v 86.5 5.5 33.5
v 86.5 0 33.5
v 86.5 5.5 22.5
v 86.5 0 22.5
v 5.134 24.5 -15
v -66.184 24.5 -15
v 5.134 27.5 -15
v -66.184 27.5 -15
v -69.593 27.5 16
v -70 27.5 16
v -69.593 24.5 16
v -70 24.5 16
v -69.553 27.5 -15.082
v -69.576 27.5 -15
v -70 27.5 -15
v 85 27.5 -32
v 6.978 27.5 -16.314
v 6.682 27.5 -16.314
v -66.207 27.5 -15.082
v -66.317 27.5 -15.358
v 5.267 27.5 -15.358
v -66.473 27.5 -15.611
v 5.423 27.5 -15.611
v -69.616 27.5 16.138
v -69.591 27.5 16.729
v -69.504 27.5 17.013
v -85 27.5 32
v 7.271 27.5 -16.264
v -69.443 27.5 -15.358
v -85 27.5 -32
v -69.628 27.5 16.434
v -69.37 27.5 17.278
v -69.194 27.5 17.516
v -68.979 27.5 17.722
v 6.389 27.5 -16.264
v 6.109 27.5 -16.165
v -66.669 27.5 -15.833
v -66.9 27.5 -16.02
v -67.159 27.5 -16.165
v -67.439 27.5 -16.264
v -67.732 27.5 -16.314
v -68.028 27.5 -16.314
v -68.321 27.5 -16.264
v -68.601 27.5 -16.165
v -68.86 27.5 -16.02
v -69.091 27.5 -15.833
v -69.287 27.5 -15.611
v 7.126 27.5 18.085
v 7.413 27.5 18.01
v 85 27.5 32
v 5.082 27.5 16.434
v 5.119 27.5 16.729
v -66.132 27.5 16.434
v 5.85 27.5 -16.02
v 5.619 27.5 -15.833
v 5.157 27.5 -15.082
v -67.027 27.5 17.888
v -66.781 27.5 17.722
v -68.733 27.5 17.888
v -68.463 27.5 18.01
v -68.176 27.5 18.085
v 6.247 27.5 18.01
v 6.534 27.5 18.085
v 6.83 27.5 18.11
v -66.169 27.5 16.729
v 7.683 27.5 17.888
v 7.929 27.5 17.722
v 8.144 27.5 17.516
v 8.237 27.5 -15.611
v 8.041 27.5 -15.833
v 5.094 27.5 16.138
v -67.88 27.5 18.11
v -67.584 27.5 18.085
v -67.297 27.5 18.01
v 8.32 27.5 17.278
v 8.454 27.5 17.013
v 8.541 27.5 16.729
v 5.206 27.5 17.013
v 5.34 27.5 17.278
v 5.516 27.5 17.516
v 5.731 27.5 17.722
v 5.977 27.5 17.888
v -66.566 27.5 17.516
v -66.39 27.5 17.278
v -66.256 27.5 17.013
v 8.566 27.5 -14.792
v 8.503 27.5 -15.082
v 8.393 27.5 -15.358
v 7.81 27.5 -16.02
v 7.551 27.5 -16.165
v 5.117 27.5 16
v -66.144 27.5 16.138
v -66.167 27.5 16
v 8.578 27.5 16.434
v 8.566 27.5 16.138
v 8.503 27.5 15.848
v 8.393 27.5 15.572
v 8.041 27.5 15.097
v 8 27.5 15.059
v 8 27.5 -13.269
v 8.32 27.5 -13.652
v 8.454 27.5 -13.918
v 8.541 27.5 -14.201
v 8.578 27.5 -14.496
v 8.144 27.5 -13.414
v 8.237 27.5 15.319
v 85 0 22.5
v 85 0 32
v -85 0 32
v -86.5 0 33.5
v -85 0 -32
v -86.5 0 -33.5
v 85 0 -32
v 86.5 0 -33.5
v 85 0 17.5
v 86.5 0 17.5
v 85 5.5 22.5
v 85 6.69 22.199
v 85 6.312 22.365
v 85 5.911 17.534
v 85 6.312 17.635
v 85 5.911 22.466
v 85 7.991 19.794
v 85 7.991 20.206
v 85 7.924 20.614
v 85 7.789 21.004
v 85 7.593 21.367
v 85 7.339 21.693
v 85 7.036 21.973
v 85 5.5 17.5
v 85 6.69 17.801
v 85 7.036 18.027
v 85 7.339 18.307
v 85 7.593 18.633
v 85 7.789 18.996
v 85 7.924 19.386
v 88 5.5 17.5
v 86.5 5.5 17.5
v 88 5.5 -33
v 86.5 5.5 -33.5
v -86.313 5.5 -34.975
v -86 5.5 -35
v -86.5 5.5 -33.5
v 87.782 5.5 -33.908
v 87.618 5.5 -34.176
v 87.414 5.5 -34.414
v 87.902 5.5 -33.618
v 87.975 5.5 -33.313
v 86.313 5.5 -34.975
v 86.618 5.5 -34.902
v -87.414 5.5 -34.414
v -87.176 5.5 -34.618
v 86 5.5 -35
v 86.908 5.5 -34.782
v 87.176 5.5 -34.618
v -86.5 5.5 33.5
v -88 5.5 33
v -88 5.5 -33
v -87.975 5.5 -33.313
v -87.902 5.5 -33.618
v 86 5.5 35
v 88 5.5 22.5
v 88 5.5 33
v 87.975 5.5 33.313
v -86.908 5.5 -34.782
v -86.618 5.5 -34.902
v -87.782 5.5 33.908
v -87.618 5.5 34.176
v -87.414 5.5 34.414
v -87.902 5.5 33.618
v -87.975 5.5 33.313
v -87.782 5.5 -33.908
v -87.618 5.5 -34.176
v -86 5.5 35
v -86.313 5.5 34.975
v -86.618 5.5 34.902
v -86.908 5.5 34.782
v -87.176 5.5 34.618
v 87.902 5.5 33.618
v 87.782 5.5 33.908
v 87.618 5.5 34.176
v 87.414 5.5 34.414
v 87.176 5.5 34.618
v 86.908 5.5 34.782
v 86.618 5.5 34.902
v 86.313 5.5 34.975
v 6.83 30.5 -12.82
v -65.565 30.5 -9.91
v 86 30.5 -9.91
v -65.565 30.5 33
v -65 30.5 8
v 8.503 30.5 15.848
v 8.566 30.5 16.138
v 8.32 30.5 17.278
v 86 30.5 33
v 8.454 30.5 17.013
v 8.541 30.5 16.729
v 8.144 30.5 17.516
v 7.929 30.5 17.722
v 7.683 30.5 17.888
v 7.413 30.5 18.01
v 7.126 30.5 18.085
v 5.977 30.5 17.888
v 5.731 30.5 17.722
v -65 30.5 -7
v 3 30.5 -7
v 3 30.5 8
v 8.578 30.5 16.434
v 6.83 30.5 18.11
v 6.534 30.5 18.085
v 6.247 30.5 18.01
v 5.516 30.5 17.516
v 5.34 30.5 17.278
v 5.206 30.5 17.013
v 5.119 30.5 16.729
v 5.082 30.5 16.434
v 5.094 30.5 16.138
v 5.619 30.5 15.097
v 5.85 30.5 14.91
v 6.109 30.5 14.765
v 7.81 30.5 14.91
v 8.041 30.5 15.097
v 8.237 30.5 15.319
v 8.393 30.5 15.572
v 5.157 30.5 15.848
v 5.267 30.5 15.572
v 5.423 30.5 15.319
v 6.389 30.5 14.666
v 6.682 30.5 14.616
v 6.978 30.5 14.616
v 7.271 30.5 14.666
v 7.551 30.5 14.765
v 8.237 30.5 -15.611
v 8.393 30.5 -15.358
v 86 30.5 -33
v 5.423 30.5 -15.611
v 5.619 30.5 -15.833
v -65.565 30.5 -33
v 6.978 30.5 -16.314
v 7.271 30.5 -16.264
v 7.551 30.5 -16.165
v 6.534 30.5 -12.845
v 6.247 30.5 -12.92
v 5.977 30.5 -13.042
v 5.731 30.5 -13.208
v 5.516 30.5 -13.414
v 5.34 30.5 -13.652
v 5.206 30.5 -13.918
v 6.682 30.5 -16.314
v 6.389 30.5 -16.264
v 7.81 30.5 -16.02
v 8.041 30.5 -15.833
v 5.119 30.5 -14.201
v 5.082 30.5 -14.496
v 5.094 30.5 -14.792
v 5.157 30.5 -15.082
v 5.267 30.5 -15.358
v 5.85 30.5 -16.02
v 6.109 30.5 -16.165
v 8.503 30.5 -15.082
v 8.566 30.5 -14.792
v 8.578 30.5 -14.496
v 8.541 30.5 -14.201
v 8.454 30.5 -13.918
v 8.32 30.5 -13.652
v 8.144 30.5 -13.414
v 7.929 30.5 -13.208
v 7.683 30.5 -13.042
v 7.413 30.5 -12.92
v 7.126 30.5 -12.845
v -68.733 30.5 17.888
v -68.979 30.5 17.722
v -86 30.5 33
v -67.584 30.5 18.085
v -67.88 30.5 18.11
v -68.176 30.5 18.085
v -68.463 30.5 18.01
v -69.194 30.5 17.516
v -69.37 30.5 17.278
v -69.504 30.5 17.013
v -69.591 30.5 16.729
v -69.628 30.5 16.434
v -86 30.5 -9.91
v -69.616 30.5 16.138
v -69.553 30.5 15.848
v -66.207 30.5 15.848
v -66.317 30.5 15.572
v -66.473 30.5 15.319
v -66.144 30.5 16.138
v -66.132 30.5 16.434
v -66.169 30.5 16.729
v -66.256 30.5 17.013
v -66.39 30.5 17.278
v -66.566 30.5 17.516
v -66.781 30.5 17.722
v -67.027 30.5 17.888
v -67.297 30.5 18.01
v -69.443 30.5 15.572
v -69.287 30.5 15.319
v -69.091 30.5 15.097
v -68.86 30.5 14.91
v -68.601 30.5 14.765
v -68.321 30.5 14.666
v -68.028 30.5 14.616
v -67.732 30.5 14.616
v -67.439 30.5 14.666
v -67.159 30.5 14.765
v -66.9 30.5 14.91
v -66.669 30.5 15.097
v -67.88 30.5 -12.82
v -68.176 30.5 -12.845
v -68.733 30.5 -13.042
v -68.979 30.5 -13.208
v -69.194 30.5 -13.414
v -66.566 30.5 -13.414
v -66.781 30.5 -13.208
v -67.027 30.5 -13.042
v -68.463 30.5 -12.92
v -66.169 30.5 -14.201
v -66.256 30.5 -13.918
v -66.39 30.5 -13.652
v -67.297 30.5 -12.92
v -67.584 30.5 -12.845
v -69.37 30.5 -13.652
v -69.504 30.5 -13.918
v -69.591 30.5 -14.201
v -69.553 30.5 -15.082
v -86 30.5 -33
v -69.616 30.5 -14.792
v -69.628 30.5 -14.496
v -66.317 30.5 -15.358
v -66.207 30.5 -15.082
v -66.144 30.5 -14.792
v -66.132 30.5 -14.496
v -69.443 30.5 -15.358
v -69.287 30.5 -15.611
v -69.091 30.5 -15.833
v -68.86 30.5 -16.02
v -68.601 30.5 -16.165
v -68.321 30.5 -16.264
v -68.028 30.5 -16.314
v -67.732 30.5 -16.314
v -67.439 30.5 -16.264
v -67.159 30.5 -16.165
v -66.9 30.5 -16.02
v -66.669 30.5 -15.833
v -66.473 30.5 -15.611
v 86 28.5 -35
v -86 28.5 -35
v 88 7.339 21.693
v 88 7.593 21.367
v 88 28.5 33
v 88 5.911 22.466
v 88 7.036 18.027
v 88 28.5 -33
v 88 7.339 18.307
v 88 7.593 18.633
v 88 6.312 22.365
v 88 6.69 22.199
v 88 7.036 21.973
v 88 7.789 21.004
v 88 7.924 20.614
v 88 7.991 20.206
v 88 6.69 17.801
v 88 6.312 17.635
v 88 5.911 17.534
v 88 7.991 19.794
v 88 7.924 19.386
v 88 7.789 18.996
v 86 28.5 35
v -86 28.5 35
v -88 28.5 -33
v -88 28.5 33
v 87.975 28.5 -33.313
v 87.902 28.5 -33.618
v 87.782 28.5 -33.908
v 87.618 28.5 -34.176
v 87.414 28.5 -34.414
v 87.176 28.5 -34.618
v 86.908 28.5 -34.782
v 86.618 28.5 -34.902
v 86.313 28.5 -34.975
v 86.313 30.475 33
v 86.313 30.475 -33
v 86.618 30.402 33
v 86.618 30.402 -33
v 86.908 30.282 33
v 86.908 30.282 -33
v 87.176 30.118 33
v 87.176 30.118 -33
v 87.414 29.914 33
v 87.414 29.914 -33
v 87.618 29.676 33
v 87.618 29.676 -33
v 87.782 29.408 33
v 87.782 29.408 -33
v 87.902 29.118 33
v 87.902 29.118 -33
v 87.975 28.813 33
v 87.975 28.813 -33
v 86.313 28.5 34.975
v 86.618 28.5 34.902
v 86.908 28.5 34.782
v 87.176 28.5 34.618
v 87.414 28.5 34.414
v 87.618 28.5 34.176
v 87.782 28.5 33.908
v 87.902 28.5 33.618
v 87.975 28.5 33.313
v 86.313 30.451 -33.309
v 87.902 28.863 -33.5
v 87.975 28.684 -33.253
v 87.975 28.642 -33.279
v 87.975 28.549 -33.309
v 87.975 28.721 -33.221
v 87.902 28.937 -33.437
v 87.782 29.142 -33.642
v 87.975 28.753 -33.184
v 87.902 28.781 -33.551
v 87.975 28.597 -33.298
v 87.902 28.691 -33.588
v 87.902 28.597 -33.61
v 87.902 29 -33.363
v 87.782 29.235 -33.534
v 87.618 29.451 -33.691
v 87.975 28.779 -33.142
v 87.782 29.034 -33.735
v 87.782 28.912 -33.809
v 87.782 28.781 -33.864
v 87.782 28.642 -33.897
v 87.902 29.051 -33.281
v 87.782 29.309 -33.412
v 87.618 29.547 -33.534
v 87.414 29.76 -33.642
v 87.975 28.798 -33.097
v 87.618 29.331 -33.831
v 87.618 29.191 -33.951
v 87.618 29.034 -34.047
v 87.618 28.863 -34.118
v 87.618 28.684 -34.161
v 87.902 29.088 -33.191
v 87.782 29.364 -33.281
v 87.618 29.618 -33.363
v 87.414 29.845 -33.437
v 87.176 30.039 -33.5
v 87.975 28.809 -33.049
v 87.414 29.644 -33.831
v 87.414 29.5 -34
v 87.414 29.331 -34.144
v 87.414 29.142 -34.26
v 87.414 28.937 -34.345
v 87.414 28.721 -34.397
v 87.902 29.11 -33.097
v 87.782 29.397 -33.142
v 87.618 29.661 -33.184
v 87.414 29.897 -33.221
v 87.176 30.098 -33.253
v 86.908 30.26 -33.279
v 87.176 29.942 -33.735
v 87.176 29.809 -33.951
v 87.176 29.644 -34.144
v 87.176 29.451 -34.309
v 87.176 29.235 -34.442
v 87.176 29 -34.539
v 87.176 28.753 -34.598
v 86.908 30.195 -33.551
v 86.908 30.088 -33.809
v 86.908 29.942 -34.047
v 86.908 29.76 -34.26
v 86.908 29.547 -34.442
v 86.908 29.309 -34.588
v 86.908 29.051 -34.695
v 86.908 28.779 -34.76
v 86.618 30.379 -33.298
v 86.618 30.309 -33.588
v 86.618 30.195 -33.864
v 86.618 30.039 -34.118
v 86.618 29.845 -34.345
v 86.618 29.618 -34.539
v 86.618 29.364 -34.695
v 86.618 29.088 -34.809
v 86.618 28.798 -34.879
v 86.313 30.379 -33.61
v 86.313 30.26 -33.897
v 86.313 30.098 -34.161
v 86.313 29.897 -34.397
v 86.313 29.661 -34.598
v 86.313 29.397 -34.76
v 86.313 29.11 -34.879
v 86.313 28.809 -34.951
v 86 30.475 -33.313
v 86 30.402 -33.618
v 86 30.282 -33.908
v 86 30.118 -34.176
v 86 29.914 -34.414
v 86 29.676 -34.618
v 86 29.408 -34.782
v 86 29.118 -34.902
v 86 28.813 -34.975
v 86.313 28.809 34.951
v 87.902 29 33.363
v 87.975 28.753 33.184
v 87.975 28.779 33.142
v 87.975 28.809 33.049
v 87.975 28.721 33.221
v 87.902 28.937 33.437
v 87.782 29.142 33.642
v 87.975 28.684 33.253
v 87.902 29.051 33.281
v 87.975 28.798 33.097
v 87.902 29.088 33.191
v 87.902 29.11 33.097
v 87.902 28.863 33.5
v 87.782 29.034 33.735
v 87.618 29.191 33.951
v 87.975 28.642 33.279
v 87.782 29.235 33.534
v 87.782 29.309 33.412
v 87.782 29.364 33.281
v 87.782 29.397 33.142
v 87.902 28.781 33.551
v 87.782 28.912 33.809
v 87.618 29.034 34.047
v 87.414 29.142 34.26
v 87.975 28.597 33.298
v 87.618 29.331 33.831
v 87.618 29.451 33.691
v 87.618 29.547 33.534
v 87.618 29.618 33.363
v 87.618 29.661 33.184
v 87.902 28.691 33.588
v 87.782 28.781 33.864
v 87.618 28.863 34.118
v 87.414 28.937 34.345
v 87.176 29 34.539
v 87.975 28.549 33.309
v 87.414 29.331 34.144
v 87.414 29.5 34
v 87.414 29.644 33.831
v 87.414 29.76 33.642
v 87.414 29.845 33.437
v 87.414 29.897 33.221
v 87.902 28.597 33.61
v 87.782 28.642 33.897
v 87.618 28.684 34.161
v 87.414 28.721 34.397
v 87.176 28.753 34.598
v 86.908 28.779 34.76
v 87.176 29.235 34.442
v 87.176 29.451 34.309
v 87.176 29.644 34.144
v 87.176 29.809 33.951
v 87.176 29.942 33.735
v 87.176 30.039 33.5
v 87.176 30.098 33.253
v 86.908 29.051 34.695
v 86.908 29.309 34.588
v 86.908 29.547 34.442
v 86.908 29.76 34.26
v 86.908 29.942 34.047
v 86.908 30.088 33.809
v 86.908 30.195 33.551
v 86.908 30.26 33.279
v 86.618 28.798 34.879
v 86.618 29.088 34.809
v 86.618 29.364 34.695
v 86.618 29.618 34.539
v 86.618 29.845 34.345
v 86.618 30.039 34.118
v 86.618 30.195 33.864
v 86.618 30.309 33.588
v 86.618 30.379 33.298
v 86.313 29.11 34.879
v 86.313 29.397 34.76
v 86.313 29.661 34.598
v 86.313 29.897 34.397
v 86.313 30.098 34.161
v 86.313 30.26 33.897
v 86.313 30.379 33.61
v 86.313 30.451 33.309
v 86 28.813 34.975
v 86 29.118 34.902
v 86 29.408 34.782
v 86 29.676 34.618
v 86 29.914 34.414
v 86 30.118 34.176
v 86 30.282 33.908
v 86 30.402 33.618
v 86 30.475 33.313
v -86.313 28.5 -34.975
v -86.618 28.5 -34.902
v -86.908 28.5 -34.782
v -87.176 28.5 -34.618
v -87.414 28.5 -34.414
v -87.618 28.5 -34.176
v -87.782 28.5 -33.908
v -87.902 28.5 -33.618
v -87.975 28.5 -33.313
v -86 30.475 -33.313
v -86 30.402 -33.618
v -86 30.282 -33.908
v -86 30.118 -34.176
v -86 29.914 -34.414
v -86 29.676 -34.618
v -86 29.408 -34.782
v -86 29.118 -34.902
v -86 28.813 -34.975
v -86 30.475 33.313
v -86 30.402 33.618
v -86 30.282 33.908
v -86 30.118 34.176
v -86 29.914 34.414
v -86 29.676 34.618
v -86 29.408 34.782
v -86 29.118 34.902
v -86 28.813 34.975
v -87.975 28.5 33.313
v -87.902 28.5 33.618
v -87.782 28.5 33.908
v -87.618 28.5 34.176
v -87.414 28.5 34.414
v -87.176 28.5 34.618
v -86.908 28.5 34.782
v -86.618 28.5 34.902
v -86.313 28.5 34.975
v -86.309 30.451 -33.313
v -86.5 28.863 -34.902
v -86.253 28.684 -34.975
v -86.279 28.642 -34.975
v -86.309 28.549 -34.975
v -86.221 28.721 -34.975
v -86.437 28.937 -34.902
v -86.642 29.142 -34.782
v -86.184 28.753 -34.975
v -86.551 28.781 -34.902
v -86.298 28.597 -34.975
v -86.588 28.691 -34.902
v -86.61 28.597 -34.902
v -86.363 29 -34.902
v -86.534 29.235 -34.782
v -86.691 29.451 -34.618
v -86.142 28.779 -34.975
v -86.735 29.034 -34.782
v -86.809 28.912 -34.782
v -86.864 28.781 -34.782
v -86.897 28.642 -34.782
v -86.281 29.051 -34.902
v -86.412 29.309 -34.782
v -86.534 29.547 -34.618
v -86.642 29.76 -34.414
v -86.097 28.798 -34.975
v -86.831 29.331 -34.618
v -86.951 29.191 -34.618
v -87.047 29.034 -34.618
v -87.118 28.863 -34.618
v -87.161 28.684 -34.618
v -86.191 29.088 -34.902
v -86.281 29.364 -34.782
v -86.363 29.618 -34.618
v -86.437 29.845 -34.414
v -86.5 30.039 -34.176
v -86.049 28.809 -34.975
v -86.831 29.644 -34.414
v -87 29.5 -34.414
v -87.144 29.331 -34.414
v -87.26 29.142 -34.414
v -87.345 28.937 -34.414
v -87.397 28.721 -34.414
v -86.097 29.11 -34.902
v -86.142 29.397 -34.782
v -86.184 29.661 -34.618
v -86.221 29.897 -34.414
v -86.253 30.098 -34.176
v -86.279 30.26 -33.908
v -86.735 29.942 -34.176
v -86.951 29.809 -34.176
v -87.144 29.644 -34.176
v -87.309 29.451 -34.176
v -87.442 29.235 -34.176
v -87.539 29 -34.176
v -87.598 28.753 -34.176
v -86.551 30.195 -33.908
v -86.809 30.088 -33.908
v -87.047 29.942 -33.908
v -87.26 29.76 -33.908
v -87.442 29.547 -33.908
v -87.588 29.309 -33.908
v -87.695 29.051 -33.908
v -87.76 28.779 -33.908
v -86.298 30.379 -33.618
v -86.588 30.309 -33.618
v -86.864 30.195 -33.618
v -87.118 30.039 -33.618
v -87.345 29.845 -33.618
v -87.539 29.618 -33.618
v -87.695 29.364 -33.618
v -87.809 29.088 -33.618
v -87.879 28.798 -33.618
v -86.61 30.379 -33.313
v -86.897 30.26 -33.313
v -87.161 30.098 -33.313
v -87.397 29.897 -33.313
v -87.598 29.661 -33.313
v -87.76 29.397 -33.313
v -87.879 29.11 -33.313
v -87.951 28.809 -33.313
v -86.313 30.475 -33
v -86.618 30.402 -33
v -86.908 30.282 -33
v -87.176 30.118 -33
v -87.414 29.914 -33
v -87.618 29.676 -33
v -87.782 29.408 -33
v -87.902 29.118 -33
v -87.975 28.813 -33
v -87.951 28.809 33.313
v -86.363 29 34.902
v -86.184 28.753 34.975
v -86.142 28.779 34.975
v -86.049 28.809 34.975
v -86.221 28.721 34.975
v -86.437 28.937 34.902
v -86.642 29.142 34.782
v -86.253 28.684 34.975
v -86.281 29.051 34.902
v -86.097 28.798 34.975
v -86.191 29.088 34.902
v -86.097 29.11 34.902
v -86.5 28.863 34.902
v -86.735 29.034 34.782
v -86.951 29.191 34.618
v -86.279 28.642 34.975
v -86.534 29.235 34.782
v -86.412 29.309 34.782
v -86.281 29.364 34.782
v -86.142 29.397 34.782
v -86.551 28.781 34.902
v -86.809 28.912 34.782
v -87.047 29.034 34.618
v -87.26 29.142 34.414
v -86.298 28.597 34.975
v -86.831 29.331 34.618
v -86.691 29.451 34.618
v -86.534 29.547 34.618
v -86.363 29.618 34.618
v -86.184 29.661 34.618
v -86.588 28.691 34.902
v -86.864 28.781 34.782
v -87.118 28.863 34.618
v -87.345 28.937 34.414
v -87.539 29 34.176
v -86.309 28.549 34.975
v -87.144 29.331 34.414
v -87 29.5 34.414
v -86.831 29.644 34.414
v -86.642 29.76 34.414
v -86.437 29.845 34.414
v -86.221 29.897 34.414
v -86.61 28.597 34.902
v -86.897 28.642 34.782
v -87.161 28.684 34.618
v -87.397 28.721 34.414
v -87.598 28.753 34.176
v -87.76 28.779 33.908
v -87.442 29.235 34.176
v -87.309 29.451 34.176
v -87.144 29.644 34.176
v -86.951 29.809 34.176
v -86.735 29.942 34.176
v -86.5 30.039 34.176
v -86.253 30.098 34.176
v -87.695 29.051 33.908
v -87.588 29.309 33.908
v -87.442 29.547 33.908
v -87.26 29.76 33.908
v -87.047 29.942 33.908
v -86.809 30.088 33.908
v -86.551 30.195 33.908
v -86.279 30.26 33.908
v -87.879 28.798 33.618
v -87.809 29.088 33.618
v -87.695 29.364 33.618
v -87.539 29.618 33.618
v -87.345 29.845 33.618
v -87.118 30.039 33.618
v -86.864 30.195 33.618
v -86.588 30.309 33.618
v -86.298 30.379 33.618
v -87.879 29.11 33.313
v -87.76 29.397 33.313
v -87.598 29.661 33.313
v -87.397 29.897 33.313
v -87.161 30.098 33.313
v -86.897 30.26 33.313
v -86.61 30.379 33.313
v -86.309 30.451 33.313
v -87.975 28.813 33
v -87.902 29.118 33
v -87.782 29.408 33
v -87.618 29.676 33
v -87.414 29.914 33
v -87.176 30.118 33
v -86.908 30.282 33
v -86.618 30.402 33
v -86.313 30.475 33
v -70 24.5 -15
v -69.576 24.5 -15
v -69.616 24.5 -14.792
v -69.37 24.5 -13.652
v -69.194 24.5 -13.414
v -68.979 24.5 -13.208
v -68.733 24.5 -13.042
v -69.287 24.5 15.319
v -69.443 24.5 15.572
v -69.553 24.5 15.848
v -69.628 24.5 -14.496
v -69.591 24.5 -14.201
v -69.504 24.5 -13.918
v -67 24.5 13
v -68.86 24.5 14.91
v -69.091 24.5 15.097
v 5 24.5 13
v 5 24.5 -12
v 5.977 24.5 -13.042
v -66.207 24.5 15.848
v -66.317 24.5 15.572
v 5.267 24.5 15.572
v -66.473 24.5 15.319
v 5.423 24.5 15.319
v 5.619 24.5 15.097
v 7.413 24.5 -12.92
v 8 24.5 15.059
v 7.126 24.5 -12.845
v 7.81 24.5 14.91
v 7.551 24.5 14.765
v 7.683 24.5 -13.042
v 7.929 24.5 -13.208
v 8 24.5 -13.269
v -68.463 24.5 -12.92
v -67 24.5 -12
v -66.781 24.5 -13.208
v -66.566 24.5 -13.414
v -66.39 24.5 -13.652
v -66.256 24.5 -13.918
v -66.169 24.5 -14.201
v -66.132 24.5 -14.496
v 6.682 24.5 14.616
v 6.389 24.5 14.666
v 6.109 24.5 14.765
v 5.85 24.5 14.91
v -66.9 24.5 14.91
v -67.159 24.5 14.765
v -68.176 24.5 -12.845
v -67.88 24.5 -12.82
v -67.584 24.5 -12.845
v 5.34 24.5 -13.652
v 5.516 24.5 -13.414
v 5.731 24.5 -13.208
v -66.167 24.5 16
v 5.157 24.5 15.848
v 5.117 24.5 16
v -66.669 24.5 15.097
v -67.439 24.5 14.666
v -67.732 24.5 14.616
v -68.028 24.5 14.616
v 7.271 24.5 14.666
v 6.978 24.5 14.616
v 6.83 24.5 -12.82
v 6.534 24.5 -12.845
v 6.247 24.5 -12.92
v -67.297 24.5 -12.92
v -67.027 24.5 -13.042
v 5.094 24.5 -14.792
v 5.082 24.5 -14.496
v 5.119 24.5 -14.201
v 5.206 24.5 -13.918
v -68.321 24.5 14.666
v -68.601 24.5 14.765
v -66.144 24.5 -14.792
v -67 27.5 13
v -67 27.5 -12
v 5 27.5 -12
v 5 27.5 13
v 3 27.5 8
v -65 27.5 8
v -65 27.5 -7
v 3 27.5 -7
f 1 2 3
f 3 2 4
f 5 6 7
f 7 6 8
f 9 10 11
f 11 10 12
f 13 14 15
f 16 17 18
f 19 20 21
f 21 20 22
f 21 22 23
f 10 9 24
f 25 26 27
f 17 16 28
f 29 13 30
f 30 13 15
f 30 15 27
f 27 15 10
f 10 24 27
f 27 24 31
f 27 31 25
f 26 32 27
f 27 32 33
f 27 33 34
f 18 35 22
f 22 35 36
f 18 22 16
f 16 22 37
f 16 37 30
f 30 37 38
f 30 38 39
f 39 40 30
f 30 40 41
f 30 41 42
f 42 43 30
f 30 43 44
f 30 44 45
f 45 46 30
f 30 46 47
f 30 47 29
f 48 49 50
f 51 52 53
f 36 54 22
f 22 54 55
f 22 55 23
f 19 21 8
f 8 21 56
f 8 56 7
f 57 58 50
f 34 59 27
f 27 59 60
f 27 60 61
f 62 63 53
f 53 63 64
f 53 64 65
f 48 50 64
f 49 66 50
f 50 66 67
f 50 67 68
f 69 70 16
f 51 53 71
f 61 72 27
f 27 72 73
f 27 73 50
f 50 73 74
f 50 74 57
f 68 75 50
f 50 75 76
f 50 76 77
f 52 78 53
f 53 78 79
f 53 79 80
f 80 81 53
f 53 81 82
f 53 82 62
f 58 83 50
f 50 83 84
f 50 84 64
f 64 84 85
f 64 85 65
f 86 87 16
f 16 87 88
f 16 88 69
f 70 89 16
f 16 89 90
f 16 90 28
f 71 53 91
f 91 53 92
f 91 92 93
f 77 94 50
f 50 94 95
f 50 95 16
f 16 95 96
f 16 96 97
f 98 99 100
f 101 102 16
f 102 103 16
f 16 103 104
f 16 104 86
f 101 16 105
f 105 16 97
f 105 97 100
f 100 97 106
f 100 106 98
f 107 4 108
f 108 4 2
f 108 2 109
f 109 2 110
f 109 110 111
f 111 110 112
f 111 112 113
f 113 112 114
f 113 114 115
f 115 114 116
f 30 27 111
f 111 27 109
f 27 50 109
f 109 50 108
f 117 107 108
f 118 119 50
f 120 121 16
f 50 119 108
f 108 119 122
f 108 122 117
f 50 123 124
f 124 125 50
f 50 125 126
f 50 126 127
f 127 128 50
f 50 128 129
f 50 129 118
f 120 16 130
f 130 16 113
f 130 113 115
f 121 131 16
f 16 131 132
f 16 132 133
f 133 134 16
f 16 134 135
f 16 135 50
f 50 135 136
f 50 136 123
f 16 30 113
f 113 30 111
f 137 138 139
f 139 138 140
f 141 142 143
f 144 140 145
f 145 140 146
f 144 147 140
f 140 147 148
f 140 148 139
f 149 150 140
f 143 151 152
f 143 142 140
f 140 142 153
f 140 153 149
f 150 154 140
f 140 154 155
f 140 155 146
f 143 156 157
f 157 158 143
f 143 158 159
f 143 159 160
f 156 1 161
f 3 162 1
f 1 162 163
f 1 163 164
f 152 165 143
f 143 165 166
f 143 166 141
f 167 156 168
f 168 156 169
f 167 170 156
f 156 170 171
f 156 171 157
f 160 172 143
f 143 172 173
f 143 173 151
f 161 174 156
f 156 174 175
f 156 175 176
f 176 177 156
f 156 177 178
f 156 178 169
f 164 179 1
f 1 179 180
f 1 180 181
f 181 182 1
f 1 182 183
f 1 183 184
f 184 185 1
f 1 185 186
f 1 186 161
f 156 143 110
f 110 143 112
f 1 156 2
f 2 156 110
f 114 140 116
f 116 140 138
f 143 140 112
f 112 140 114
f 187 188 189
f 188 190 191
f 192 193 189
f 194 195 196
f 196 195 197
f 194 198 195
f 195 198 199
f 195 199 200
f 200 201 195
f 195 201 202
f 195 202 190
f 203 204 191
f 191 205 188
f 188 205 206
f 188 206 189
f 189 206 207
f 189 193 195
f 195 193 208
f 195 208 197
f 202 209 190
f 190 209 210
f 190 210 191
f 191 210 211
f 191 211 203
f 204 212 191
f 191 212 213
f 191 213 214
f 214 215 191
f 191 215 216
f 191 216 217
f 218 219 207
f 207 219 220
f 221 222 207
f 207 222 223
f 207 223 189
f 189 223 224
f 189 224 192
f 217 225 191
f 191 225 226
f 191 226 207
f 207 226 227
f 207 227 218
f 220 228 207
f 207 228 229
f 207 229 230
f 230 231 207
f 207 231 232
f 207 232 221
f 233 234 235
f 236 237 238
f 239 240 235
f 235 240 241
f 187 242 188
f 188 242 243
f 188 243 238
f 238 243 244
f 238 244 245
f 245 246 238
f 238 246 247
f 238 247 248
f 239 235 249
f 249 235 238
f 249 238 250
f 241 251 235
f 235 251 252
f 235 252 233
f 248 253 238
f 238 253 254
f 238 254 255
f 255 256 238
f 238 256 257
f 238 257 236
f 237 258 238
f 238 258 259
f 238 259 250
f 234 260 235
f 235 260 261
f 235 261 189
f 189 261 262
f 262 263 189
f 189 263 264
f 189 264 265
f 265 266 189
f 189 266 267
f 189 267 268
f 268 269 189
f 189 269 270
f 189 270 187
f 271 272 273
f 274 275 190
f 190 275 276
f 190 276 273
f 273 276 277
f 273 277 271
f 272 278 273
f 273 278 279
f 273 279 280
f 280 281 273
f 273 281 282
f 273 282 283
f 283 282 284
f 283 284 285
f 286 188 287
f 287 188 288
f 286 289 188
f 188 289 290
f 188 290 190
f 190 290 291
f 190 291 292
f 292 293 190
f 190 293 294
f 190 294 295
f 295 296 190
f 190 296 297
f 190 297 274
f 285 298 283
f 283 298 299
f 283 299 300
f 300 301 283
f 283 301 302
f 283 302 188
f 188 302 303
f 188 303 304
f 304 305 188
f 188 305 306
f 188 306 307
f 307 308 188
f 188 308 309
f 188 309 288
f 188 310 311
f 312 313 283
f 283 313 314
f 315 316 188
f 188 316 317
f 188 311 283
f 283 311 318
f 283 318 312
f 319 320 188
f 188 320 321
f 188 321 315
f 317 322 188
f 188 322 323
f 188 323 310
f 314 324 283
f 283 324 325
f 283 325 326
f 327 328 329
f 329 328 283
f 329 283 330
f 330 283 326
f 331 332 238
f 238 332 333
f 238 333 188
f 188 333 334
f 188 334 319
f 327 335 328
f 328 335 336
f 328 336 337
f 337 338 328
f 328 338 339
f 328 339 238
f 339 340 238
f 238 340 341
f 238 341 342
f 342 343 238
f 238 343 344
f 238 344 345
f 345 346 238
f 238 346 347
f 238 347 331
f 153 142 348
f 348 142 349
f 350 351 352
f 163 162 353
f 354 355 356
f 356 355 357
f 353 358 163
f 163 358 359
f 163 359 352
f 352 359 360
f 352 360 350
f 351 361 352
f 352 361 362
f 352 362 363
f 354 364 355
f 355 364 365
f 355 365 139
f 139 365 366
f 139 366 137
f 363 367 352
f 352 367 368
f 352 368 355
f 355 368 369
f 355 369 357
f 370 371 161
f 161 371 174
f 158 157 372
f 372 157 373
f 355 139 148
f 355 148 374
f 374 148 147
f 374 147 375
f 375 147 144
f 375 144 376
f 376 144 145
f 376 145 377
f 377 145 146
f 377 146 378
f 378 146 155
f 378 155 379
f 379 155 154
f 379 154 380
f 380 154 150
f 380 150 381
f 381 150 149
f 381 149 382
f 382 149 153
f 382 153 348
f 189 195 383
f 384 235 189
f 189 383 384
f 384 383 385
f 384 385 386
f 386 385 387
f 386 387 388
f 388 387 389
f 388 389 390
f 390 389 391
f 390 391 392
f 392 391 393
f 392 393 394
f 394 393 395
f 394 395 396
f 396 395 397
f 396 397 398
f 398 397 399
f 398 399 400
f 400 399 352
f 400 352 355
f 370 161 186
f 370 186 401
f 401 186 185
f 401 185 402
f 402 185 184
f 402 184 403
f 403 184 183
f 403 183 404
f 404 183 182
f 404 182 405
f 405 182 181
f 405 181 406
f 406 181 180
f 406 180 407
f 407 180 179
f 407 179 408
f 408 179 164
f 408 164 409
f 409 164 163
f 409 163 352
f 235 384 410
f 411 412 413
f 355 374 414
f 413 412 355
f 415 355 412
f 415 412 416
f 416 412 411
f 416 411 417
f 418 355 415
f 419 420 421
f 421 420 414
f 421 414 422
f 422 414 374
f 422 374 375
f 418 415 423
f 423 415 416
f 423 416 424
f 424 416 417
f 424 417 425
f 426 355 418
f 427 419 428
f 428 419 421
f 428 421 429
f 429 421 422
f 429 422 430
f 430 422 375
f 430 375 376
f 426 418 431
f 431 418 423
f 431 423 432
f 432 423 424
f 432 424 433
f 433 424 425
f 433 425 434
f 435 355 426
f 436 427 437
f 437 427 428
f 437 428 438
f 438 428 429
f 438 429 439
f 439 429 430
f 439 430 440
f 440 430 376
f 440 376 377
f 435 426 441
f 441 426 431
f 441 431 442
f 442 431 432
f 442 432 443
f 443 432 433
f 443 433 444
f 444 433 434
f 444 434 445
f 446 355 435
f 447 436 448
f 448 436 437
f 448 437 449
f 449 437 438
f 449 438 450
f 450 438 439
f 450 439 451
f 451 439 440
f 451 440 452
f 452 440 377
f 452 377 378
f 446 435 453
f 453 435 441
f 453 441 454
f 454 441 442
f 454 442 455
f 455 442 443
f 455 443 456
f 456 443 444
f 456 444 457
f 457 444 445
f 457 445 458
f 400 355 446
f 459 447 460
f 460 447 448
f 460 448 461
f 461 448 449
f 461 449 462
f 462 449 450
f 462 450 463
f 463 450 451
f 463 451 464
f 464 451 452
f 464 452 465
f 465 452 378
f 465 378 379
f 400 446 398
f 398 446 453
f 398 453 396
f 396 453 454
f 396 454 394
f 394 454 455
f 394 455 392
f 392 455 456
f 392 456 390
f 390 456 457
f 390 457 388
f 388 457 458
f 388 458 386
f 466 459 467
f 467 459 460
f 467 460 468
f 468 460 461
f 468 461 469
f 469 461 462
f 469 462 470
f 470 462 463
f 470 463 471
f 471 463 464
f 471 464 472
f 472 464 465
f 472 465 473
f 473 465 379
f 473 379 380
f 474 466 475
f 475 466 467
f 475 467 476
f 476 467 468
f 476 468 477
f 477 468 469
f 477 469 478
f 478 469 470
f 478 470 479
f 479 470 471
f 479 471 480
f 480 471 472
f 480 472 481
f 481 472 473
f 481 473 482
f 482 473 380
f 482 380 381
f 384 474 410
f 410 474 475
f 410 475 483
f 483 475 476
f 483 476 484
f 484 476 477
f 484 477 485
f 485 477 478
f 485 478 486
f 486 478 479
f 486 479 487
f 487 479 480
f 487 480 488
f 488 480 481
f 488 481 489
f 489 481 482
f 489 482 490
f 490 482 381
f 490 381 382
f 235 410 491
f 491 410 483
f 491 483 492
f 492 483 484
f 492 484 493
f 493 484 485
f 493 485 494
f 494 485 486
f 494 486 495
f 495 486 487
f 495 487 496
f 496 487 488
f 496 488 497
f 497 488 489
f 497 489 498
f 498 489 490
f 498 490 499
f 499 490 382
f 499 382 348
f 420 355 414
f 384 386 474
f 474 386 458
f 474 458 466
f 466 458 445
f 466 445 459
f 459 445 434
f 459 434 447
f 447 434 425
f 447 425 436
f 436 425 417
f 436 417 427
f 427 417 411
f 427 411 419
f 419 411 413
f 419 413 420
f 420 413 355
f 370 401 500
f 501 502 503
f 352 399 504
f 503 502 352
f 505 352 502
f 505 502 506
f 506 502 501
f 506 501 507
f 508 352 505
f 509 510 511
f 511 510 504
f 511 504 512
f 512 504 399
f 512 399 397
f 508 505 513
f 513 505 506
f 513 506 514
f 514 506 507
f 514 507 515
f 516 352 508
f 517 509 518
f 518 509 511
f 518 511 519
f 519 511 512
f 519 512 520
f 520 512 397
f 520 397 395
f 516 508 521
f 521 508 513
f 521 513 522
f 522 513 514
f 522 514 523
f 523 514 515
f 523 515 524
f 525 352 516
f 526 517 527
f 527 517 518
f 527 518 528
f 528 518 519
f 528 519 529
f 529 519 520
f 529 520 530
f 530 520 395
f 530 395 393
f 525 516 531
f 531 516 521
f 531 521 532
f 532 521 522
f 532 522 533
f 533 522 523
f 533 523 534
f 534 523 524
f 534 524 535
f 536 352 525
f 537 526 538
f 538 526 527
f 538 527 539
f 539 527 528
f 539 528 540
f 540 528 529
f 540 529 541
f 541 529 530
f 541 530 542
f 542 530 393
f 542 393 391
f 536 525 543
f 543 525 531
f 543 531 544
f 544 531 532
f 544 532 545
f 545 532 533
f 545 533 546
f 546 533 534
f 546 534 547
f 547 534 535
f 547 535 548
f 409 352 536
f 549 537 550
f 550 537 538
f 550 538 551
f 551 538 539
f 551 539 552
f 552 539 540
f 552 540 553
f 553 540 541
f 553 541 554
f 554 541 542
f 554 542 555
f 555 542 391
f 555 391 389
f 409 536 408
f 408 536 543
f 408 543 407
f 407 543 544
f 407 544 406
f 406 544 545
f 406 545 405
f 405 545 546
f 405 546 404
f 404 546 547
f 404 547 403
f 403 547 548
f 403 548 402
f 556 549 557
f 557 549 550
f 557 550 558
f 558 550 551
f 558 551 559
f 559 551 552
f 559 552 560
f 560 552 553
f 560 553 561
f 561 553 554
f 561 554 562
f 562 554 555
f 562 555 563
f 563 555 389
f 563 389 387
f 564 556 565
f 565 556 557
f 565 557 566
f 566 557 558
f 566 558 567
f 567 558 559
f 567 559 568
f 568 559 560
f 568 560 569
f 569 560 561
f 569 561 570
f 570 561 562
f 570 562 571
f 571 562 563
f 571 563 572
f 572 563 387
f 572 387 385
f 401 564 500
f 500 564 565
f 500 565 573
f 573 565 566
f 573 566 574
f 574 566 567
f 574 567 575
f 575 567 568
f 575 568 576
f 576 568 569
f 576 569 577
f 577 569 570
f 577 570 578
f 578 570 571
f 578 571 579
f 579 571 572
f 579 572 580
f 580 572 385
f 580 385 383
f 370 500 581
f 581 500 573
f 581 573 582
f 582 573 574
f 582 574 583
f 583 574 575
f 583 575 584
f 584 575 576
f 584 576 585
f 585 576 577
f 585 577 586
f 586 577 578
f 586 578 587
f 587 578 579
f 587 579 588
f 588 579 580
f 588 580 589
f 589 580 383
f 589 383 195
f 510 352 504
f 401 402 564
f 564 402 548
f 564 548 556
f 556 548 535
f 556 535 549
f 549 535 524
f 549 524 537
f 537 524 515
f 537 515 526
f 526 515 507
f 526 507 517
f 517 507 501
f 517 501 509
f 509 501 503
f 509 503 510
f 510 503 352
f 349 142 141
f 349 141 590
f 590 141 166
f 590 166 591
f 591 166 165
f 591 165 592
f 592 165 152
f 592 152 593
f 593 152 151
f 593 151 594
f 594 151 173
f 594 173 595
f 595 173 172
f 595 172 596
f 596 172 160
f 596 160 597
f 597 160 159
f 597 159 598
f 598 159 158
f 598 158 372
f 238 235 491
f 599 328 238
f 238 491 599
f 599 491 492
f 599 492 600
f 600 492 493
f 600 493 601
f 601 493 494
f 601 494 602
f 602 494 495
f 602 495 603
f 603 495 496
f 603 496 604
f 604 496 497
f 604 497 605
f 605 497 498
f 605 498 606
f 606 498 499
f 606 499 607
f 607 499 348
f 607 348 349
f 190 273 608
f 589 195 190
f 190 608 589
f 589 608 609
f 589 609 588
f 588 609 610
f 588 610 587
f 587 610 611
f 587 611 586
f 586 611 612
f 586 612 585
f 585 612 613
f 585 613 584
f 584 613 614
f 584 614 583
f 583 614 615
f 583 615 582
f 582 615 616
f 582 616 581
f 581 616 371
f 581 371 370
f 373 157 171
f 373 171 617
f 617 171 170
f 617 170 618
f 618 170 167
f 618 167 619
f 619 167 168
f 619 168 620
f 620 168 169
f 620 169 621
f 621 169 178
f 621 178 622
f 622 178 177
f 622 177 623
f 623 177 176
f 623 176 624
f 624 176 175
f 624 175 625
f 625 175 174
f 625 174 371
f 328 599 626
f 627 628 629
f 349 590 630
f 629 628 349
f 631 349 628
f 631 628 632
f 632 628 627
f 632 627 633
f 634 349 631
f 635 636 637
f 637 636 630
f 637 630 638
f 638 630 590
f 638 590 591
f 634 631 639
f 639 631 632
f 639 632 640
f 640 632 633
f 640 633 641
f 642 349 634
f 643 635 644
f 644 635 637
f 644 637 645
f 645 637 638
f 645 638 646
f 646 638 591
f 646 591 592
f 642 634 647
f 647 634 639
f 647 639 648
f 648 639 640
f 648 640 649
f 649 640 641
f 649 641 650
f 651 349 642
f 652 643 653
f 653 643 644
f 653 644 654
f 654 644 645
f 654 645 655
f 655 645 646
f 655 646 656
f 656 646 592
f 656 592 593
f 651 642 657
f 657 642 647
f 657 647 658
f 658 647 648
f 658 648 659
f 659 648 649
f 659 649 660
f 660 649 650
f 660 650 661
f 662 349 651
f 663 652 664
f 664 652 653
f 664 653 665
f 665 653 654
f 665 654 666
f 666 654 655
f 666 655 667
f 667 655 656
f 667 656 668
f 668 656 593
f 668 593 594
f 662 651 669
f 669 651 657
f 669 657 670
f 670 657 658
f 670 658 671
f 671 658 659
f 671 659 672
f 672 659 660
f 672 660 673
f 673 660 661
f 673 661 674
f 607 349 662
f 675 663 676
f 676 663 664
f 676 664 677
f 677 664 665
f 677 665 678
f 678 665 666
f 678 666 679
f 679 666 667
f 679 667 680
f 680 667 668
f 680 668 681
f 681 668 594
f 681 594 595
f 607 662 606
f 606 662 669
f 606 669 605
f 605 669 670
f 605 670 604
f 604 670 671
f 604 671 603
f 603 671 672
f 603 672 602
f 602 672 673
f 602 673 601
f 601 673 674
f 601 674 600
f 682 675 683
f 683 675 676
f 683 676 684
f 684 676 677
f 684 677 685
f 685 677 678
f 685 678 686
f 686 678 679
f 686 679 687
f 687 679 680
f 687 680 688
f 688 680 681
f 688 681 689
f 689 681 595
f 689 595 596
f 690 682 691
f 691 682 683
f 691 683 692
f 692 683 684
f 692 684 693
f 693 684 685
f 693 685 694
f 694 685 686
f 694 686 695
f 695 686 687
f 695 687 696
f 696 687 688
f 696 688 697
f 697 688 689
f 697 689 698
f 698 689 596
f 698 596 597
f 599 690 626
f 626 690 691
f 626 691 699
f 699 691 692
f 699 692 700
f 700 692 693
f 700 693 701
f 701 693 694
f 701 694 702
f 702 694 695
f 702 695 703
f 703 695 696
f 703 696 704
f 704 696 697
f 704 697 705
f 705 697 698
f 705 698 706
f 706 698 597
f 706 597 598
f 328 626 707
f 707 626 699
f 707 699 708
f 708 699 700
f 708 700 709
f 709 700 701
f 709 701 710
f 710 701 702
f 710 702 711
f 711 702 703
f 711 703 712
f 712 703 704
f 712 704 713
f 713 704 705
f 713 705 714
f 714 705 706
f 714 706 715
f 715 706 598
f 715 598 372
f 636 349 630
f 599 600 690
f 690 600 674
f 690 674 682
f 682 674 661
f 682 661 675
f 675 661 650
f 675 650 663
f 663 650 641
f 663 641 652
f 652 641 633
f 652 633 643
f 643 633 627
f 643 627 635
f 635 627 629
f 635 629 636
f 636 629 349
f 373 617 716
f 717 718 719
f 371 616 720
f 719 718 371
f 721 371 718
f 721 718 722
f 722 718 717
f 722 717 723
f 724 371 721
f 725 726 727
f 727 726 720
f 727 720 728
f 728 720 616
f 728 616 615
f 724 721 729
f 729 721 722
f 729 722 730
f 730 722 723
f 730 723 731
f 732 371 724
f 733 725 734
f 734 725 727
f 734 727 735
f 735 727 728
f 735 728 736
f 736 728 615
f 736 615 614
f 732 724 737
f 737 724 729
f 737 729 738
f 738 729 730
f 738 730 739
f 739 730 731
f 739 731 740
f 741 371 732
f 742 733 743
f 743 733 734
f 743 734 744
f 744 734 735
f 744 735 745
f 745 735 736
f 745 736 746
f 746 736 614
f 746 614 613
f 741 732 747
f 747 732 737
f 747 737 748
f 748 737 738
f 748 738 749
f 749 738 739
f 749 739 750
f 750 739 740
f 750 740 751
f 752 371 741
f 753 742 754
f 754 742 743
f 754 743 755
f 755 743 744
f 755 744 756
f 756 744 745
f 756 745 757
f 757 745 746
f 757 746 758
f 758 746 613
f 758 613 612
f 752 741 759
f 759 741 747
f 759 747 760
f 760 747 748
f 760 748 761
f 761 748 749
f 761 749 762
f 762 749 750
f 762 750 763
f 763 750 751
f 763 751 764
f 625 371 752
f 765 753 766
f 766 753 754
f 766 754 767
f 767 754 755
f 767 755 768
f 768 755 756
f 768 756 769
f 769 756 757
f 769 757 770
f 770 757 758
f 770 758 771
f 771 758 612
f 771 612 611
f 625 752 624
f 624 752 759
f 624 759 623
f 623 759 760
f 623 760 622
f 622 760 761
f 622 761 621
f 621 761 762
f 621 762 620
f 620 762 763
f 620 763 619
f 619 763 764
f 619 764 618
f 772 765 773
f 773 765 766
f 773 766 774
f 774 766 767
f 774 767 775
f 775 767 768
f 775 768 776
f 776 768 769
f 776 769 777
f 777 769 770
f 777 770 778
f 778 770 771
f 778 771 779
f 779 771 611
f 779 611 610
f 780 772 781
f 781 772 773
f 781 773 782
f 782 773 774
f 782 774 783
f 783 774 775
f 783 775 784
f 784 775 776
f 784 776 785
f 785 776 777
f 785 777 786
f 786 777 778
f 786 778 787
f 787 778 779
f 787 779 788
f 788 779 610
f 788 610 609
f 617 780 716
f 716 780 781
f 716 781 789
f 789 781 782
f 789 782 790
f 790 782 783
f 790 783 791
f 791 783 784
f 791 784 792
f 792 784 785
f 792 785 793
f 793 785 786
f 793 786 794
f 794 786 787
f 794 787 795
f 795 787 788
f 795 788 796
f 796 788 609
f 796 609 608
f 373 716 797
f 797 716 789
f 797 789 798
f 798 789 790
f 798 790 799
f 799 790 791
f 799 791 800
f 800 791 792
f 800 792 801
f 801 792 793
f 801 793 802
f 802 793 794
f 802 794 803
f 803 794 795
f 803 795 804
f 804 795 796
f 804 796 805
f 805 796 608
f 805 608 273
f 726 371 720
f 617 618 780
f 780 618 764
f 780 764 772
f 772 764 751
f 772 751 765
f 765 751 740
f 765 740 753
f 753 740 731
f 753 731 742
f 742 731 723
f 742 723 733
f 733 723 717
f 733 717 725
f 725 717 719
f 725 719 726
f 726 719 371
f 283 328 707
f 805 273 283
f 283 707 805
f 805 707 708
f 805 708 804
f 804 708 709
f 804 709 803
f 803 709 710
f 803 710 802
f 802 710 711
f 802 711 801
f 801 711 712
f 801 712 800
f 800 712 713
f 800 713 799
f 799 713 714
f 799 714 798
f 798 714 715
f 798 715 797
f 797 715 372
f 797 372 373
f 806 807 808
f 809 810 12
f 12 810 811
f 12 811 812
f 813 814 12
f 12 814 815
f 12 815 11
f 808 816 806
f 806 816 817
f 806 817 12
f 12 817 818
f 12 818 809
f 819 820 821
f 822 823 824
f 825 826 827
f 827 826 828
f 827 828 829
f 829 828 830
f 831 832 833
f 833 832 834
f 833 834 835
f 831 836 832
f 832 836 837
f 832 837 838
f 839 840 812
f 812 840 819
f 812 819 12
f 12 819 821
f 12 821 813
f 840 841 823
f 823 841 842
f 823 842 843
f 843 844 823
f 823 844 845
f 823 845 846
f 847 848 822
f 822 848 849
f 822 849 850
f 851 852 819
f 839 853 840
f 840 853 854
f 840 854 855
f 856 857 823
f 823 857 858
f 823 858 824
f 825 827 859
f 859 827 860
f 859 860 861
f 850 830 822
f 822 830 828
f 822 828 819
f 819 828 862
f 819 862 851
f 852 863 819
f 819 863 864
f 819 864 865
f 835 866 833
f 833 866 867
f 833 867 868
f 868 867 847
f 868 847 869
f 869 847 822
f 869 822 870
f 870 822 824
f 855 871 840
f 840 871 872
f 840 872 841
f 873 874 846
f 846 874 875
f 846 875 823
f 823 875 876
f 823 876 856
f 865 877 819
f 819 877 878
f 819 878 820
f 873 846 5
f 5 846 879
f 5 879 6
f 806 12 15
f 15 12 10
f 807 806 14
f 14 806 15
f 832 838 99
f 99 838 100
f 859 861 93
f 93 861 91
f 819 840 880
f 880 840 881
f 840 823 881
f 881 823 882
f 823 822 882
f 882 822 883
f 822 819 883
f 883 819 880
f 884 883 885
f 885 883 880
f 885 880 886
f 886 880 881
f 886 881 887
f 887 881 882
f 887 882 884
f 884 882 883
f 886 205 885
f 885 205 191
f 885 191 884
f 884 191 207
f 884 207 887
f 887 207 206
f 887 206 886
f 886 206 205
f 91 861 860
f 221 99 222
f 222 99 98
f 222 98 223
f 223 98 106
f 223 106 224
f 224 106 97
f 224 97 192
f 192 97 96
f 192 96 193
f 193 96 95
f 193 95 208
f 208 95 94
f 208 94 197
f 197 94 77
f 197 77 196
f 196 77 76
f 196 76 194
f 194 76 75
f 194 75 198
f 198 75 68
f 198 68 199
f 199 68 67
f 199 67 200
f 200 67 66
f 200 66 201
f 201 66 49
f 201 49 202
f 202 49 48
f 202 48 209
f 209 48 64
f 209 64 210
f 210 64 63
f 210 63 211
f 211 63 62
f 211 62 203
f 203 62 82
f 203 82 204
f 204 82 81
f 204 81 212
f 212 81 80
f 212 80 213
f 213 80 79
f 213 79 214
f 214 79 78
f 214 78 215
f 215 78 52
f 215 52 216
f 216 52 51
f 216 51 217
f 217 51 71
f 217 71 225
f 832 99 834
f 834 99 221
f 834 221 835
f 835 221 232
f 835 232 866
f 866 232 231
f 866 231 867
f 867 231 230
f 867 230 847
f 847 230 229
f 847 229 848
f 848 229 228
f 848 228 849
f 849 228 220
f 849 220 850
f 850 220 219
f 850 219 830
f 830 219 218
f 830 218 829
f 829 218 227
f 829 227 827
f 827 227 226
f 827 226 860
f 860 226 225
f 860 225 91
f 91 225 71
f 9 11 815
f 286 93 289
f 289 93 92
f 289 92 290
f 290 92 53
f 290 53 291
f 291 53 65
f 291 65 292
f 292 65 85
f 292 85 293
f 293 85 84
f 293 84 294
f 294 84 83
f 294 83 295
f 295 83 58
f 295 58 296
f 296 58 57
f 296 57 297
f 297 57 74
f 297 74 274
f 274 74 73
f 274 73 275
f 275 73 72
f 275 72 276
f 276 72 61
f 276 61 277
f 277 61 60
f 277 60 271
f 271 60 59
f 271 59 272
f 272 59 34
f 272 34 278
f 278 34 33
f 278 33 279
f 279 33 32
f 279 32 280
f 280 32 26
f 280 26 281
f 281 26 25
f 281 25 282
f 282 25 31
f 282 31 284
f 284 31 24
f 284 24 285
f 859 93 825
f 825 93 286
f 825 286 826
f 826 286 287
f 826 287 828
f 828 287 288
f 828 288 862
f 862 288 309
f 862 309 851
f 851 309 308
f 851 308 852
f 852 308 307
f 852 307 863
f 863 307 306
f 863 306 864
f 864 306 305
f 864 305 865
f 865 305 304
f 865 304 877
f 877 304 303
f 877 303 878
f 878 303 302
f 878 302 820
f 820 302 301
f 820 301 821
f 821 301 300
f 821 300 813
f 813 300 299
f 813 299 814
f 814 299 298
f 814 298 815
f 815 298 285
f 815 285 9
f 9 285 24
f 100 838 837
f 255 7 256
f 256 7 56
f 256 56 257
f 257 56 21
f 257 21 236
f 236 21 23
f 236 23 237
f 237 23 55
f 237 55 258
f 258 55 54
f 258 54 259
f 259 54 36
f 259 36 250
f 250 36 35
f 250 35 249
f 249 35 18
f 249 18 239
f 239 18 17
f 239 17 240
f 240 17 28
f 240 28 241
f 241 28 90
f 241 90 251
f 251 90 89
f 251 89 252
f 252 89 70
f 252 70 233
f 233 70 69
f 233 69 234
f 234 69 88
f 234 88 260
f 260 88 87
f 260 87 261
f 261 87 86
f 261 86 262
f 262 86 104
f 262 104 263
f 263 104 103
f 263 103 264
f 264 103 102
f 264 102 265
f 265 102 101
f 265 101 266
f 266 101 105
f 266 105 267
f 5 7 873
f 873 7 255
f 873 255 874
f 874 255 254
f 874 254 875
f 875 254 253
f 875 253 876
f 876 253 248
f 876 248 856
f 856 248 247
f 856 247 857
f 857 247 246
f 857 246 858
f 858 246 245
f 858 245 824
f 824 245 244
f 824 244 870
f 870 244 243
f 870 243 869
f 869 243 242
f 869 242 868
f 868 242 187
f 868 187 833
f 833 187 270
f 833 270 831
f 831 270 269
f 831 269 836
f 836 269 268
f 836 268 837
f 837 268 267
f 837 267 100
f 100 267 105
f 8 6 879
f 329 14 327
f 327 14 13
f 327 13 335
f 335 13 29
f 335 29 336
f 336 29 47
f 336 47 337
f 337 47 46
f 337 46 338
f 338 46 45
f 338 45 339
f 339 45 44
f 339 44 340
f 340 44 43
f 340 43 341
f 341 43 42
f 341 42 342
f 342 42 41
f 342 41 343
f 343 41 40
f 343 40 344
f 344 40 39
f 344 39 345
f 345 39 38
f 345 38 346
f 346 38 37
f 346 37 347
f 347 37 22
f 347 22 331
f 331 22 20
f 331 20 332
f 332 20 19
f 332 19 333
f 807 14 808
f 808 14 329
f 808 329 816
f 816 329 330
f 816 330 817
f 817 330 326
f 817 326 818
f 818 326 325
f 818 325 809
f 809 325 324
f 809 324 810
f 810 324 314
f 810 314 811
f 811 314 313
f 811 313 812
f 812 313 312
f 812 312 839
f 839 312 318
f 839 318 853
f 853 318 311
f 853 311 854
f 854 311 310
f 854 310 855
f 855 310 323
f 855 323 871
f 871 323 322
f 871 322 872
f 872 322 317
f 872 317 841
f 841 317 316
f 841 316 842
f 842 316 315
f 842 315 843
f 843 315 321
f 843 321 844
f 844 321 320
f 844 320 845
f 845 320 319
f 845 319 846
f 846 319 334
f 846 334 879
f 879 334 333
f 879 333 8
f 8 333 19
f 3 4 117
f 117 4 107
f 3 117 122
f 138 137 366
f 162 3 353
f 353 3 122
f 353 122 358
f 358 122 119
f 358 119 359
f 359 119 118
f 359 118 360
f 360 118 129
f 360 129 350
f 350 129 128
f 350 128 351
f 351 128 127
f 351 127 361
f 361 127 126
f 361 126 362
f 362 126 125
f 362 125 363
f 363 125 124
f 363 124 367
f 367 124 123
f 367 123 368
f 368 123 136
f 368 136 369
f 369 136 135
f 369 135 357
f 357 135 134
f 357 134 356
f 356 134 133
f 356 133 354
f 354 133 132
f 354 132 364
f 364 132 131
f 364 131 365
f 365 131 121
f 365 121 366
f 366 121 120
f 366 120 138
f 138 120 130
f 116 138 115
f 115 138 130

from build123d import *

# Parameters (mm, degrees)
SKETCH1_W           = 176
SKETCH1_H           = 70
BOSS_EXTRUDE1_DEPTH = 30.5
SKETCH2_W           = 170
SKETCH2_H           = 64
CUT_EXTRUDE1_DEPTH  = 27.5
SKETCH3_W           = 176
SKETCH3_H           = 70
SKETCH3_W_2         = 173
SKETCH3_H_2         = 67
CUT_EXTRUDE2_DEPTH  = 5.5
FILLET1_R           = 2
SKETCH4_W           = 78
SKETCH4_H           = 31
SKETCH4_W_2         = 72
SKETCH4_H_2         = 25
BOSS_EXTRUDE2_DEPTH = 3
CUT_EXTRUDE3_REACH  = 5
SKETCH5_W           = 68
SKETCH5_H           = 15
CUT_EXTRUDE4_REACH  = 32.5
SKETCH6_R           = 1.75
CUT_EXTRUDE6_REACH  = 178


with BuildPart() as part:
    # Sketch1 → Boss-Extrude1 (new body)
    with BuildSketch(Plane(origin=(0, 0, 0), x_dir=(1, 0, 0), z_dir=(0, 1, 0))):
        Rectangle(SKETCH1_W, SKETCH1_H)
    extrude(amount=BOSS_EXTRUDE1_DEPTH)

    # Sketch2 → Cut-Extrude1 (cut)
    with BuildSketch(Plane.XZ):
        Rectangle(SKETCH2_W, SKETCH2_H)
    extrude(amount=-CUT_EXTRUDE1_DEPTH, mode=Mode.SUBTRACT)

    # Sketch3 → Cut-Extrude2 (cut)
    with BuildSketch(Plane.XZ):
        Rectangle(SKETCH3_W, SKETCH3_H)
        Rectangle(SKETCH3_W_2, SKETCH3_H_2, mode=Mode.SUBTRACT)
    extrude(amount=-CUT_EXTRUDE2_DEPTH, mode=Mode.SUBTRACT)

    # Fillet1
    fillet1_edges = [part.edges().sort_by_distance(p)[0] for p in [
        (88, 30.5, 0),
        (0, 30.5, -35),
        (-88, 30.5, 0),
        (-88, 18, -35),
        (88, 18, -35),
        (88, 18, 35),
        (-88, 18, 35),
        (0, 30.5, 35),
    ]]
    fillet(fillet1_edges, radius=FILLET1_R)

    # Sketch4 → Boss-Extrude2 (add)
    with BuildSketch(Plane.XZ.offset(-27.5)):
        with Locations((-31, 0.5)):
            Rectangle(SKETCH4_W, SKETCH4_H)
        with Locations((-31, 0.5)):
            Rectangle(SKETCH4_W_2, SKETCH4_H_2, mode=Mode.SUBTRACT)
    extrude(amount=BOSS_EXTRUDE2_DEPTH)

    # Sketch5 → Cut-Extrude3 (cut, up to next)
    with BuildSketch(Plane.XZ.offset(-27.5), mode=Mode.PRIVATE) as cut_extrude3_sk1:
        with Locations((-31, 0.5)):
            Rectangle(SKETCH5_W, SKETCH5_H)
    cut_extrude3_tool1 = extrude(cut_extrude3_sk1.sketch, amount=-CUT_EXTRUDE3_REACH, mode=Mode.PRIVATE) & part.part
    add(cut_extrude3_tool1.solids().sort_by_distance((-31, 27.5, 0.5))[0], mode=Mode.SUBTRACT)

    # Sketch6 → Cut-Extrude4 (cut, up to next)
    with BuildSketch(Plane(origin=(0, 30.5, 0), x_dir=(1, 0, 0), z_dir=(0, 1, 0)), mode=Mode.PRIVATE) as cut_extrude4_sk1:
        with Locations((-67.88, 14.57)):
            Circle(SKETCH6_R)
    cut_extrude4_tool1 = extrude(cut_extrude4_sk1.sketch, amount=-CUT_EXTRUDE4_REACH, mode=Mode.PRIVATE) & part.part
    add(cut_extrude4_tool1.solids().sort_by_distance((-67.88, 30.5, -14.57))[0], mode=Mode.SUBTRACT)
    # Sketch6 → Cut-Extrude4 (cut, up to next)
    with BuildSketch(Plane(origin=(0, 30.5, 0), x_dir=(1, 0, 0), z_dir=(0, 1, 0)), mode=Mode.PRIVATE) as cut_extrude4_sk2:
        with Locations((6.83, 14.57)):
            Circle(SKETCH6_R)
    cut_extrude4_tool2 = extrude(cut_extrude4_sk2.sketch, amount=-CUT_EXTRUDE4_REACH, mode=Mode.PRIVATE) & part.part
    add(cut_extrude4_tool2.solids().sort_by_distance((6.83, 30.5, -14.57))[0], mode=Mode.SUBTRACT)
    # Sketch6 → Cut-Extrude4 (cut, up to next)
    with BuildSketch(Plane(origin=(0, 30.5, 0), x_dir=(1, 0, 0), z_dir=(0, 1, 0)), mode=Mode.PRIVATE) as cut_extrude4_sk3:
        with Locations((6.83, -16.36)):
            Circle(SKETCH6_R)
    cut_extrude4_tool3 = extrude(cut_extrude4_sk3.sketch, amount=-CUT_EXTRUDE4_REACH, mode=Mode.PRIVATE) & part.part
    add(cut_extrude4_tool3.solids().sort_by_distance((6.83, 30.5, 16.36))[0], mode=Mode.SUBTRACT)
    # Sketch6 → Cut-Extrude4 (cut, up to next)
    with BuildSketch(Plane(origin=(0, 30.5, 0), x_dir=(1, 0, 0), z_dir=(0, 1, 0)), mode=Mode.PRIVATE) as cut_extrude4_sk4:
        with Locations((-67.88, -16.36)):
            Circle(SKETCH6_R)
    cut_extrude4_tool4 = extrude(cut_extrude4_sk4.sketch, amount=-CUT_EXTRUDE4_REACH, mode=Mode.PRIVATE) & part.part
    add(cut_extrude4_tool4.solids().sort_by_distance((-67.88, 30.5, 16.36))[0], mode=Mode.SUBTRACT)

    # Sketch8 → Cut-Extrude6 (cut, up to next)
    with BuildSketch(Plane(origin=(88, 0, 0), x_dir=(0, 0, -1), z_dir=(1, 0, 0)), mode=Mode.PRIVATE) as cut_extrude6_sk1:
        with BuildLine():
            Line((-22.5, 5.5), (-22.5, 0))
            Line((-22.5, 0), (-17.5, 0))
            Line((-17.5, 0), (-17.5, 5.5))
            ThreePointArc((-17.5, 5.5), (-20, 8), (-22.5, 5.5))
        make_face()
    cut_extrude6_tool1 = extrude(cut_extrude6_sk1.sketch, amount=-CUT_EXTRUDE6_REACH, mode=Mode.PRIVATE) & part.part
    add(cut_extrude6_tool1.solids().sort_by_distance((88, 3.752606, 20))[0], mode=Mode.SUBTRACT)


solid = part.part
